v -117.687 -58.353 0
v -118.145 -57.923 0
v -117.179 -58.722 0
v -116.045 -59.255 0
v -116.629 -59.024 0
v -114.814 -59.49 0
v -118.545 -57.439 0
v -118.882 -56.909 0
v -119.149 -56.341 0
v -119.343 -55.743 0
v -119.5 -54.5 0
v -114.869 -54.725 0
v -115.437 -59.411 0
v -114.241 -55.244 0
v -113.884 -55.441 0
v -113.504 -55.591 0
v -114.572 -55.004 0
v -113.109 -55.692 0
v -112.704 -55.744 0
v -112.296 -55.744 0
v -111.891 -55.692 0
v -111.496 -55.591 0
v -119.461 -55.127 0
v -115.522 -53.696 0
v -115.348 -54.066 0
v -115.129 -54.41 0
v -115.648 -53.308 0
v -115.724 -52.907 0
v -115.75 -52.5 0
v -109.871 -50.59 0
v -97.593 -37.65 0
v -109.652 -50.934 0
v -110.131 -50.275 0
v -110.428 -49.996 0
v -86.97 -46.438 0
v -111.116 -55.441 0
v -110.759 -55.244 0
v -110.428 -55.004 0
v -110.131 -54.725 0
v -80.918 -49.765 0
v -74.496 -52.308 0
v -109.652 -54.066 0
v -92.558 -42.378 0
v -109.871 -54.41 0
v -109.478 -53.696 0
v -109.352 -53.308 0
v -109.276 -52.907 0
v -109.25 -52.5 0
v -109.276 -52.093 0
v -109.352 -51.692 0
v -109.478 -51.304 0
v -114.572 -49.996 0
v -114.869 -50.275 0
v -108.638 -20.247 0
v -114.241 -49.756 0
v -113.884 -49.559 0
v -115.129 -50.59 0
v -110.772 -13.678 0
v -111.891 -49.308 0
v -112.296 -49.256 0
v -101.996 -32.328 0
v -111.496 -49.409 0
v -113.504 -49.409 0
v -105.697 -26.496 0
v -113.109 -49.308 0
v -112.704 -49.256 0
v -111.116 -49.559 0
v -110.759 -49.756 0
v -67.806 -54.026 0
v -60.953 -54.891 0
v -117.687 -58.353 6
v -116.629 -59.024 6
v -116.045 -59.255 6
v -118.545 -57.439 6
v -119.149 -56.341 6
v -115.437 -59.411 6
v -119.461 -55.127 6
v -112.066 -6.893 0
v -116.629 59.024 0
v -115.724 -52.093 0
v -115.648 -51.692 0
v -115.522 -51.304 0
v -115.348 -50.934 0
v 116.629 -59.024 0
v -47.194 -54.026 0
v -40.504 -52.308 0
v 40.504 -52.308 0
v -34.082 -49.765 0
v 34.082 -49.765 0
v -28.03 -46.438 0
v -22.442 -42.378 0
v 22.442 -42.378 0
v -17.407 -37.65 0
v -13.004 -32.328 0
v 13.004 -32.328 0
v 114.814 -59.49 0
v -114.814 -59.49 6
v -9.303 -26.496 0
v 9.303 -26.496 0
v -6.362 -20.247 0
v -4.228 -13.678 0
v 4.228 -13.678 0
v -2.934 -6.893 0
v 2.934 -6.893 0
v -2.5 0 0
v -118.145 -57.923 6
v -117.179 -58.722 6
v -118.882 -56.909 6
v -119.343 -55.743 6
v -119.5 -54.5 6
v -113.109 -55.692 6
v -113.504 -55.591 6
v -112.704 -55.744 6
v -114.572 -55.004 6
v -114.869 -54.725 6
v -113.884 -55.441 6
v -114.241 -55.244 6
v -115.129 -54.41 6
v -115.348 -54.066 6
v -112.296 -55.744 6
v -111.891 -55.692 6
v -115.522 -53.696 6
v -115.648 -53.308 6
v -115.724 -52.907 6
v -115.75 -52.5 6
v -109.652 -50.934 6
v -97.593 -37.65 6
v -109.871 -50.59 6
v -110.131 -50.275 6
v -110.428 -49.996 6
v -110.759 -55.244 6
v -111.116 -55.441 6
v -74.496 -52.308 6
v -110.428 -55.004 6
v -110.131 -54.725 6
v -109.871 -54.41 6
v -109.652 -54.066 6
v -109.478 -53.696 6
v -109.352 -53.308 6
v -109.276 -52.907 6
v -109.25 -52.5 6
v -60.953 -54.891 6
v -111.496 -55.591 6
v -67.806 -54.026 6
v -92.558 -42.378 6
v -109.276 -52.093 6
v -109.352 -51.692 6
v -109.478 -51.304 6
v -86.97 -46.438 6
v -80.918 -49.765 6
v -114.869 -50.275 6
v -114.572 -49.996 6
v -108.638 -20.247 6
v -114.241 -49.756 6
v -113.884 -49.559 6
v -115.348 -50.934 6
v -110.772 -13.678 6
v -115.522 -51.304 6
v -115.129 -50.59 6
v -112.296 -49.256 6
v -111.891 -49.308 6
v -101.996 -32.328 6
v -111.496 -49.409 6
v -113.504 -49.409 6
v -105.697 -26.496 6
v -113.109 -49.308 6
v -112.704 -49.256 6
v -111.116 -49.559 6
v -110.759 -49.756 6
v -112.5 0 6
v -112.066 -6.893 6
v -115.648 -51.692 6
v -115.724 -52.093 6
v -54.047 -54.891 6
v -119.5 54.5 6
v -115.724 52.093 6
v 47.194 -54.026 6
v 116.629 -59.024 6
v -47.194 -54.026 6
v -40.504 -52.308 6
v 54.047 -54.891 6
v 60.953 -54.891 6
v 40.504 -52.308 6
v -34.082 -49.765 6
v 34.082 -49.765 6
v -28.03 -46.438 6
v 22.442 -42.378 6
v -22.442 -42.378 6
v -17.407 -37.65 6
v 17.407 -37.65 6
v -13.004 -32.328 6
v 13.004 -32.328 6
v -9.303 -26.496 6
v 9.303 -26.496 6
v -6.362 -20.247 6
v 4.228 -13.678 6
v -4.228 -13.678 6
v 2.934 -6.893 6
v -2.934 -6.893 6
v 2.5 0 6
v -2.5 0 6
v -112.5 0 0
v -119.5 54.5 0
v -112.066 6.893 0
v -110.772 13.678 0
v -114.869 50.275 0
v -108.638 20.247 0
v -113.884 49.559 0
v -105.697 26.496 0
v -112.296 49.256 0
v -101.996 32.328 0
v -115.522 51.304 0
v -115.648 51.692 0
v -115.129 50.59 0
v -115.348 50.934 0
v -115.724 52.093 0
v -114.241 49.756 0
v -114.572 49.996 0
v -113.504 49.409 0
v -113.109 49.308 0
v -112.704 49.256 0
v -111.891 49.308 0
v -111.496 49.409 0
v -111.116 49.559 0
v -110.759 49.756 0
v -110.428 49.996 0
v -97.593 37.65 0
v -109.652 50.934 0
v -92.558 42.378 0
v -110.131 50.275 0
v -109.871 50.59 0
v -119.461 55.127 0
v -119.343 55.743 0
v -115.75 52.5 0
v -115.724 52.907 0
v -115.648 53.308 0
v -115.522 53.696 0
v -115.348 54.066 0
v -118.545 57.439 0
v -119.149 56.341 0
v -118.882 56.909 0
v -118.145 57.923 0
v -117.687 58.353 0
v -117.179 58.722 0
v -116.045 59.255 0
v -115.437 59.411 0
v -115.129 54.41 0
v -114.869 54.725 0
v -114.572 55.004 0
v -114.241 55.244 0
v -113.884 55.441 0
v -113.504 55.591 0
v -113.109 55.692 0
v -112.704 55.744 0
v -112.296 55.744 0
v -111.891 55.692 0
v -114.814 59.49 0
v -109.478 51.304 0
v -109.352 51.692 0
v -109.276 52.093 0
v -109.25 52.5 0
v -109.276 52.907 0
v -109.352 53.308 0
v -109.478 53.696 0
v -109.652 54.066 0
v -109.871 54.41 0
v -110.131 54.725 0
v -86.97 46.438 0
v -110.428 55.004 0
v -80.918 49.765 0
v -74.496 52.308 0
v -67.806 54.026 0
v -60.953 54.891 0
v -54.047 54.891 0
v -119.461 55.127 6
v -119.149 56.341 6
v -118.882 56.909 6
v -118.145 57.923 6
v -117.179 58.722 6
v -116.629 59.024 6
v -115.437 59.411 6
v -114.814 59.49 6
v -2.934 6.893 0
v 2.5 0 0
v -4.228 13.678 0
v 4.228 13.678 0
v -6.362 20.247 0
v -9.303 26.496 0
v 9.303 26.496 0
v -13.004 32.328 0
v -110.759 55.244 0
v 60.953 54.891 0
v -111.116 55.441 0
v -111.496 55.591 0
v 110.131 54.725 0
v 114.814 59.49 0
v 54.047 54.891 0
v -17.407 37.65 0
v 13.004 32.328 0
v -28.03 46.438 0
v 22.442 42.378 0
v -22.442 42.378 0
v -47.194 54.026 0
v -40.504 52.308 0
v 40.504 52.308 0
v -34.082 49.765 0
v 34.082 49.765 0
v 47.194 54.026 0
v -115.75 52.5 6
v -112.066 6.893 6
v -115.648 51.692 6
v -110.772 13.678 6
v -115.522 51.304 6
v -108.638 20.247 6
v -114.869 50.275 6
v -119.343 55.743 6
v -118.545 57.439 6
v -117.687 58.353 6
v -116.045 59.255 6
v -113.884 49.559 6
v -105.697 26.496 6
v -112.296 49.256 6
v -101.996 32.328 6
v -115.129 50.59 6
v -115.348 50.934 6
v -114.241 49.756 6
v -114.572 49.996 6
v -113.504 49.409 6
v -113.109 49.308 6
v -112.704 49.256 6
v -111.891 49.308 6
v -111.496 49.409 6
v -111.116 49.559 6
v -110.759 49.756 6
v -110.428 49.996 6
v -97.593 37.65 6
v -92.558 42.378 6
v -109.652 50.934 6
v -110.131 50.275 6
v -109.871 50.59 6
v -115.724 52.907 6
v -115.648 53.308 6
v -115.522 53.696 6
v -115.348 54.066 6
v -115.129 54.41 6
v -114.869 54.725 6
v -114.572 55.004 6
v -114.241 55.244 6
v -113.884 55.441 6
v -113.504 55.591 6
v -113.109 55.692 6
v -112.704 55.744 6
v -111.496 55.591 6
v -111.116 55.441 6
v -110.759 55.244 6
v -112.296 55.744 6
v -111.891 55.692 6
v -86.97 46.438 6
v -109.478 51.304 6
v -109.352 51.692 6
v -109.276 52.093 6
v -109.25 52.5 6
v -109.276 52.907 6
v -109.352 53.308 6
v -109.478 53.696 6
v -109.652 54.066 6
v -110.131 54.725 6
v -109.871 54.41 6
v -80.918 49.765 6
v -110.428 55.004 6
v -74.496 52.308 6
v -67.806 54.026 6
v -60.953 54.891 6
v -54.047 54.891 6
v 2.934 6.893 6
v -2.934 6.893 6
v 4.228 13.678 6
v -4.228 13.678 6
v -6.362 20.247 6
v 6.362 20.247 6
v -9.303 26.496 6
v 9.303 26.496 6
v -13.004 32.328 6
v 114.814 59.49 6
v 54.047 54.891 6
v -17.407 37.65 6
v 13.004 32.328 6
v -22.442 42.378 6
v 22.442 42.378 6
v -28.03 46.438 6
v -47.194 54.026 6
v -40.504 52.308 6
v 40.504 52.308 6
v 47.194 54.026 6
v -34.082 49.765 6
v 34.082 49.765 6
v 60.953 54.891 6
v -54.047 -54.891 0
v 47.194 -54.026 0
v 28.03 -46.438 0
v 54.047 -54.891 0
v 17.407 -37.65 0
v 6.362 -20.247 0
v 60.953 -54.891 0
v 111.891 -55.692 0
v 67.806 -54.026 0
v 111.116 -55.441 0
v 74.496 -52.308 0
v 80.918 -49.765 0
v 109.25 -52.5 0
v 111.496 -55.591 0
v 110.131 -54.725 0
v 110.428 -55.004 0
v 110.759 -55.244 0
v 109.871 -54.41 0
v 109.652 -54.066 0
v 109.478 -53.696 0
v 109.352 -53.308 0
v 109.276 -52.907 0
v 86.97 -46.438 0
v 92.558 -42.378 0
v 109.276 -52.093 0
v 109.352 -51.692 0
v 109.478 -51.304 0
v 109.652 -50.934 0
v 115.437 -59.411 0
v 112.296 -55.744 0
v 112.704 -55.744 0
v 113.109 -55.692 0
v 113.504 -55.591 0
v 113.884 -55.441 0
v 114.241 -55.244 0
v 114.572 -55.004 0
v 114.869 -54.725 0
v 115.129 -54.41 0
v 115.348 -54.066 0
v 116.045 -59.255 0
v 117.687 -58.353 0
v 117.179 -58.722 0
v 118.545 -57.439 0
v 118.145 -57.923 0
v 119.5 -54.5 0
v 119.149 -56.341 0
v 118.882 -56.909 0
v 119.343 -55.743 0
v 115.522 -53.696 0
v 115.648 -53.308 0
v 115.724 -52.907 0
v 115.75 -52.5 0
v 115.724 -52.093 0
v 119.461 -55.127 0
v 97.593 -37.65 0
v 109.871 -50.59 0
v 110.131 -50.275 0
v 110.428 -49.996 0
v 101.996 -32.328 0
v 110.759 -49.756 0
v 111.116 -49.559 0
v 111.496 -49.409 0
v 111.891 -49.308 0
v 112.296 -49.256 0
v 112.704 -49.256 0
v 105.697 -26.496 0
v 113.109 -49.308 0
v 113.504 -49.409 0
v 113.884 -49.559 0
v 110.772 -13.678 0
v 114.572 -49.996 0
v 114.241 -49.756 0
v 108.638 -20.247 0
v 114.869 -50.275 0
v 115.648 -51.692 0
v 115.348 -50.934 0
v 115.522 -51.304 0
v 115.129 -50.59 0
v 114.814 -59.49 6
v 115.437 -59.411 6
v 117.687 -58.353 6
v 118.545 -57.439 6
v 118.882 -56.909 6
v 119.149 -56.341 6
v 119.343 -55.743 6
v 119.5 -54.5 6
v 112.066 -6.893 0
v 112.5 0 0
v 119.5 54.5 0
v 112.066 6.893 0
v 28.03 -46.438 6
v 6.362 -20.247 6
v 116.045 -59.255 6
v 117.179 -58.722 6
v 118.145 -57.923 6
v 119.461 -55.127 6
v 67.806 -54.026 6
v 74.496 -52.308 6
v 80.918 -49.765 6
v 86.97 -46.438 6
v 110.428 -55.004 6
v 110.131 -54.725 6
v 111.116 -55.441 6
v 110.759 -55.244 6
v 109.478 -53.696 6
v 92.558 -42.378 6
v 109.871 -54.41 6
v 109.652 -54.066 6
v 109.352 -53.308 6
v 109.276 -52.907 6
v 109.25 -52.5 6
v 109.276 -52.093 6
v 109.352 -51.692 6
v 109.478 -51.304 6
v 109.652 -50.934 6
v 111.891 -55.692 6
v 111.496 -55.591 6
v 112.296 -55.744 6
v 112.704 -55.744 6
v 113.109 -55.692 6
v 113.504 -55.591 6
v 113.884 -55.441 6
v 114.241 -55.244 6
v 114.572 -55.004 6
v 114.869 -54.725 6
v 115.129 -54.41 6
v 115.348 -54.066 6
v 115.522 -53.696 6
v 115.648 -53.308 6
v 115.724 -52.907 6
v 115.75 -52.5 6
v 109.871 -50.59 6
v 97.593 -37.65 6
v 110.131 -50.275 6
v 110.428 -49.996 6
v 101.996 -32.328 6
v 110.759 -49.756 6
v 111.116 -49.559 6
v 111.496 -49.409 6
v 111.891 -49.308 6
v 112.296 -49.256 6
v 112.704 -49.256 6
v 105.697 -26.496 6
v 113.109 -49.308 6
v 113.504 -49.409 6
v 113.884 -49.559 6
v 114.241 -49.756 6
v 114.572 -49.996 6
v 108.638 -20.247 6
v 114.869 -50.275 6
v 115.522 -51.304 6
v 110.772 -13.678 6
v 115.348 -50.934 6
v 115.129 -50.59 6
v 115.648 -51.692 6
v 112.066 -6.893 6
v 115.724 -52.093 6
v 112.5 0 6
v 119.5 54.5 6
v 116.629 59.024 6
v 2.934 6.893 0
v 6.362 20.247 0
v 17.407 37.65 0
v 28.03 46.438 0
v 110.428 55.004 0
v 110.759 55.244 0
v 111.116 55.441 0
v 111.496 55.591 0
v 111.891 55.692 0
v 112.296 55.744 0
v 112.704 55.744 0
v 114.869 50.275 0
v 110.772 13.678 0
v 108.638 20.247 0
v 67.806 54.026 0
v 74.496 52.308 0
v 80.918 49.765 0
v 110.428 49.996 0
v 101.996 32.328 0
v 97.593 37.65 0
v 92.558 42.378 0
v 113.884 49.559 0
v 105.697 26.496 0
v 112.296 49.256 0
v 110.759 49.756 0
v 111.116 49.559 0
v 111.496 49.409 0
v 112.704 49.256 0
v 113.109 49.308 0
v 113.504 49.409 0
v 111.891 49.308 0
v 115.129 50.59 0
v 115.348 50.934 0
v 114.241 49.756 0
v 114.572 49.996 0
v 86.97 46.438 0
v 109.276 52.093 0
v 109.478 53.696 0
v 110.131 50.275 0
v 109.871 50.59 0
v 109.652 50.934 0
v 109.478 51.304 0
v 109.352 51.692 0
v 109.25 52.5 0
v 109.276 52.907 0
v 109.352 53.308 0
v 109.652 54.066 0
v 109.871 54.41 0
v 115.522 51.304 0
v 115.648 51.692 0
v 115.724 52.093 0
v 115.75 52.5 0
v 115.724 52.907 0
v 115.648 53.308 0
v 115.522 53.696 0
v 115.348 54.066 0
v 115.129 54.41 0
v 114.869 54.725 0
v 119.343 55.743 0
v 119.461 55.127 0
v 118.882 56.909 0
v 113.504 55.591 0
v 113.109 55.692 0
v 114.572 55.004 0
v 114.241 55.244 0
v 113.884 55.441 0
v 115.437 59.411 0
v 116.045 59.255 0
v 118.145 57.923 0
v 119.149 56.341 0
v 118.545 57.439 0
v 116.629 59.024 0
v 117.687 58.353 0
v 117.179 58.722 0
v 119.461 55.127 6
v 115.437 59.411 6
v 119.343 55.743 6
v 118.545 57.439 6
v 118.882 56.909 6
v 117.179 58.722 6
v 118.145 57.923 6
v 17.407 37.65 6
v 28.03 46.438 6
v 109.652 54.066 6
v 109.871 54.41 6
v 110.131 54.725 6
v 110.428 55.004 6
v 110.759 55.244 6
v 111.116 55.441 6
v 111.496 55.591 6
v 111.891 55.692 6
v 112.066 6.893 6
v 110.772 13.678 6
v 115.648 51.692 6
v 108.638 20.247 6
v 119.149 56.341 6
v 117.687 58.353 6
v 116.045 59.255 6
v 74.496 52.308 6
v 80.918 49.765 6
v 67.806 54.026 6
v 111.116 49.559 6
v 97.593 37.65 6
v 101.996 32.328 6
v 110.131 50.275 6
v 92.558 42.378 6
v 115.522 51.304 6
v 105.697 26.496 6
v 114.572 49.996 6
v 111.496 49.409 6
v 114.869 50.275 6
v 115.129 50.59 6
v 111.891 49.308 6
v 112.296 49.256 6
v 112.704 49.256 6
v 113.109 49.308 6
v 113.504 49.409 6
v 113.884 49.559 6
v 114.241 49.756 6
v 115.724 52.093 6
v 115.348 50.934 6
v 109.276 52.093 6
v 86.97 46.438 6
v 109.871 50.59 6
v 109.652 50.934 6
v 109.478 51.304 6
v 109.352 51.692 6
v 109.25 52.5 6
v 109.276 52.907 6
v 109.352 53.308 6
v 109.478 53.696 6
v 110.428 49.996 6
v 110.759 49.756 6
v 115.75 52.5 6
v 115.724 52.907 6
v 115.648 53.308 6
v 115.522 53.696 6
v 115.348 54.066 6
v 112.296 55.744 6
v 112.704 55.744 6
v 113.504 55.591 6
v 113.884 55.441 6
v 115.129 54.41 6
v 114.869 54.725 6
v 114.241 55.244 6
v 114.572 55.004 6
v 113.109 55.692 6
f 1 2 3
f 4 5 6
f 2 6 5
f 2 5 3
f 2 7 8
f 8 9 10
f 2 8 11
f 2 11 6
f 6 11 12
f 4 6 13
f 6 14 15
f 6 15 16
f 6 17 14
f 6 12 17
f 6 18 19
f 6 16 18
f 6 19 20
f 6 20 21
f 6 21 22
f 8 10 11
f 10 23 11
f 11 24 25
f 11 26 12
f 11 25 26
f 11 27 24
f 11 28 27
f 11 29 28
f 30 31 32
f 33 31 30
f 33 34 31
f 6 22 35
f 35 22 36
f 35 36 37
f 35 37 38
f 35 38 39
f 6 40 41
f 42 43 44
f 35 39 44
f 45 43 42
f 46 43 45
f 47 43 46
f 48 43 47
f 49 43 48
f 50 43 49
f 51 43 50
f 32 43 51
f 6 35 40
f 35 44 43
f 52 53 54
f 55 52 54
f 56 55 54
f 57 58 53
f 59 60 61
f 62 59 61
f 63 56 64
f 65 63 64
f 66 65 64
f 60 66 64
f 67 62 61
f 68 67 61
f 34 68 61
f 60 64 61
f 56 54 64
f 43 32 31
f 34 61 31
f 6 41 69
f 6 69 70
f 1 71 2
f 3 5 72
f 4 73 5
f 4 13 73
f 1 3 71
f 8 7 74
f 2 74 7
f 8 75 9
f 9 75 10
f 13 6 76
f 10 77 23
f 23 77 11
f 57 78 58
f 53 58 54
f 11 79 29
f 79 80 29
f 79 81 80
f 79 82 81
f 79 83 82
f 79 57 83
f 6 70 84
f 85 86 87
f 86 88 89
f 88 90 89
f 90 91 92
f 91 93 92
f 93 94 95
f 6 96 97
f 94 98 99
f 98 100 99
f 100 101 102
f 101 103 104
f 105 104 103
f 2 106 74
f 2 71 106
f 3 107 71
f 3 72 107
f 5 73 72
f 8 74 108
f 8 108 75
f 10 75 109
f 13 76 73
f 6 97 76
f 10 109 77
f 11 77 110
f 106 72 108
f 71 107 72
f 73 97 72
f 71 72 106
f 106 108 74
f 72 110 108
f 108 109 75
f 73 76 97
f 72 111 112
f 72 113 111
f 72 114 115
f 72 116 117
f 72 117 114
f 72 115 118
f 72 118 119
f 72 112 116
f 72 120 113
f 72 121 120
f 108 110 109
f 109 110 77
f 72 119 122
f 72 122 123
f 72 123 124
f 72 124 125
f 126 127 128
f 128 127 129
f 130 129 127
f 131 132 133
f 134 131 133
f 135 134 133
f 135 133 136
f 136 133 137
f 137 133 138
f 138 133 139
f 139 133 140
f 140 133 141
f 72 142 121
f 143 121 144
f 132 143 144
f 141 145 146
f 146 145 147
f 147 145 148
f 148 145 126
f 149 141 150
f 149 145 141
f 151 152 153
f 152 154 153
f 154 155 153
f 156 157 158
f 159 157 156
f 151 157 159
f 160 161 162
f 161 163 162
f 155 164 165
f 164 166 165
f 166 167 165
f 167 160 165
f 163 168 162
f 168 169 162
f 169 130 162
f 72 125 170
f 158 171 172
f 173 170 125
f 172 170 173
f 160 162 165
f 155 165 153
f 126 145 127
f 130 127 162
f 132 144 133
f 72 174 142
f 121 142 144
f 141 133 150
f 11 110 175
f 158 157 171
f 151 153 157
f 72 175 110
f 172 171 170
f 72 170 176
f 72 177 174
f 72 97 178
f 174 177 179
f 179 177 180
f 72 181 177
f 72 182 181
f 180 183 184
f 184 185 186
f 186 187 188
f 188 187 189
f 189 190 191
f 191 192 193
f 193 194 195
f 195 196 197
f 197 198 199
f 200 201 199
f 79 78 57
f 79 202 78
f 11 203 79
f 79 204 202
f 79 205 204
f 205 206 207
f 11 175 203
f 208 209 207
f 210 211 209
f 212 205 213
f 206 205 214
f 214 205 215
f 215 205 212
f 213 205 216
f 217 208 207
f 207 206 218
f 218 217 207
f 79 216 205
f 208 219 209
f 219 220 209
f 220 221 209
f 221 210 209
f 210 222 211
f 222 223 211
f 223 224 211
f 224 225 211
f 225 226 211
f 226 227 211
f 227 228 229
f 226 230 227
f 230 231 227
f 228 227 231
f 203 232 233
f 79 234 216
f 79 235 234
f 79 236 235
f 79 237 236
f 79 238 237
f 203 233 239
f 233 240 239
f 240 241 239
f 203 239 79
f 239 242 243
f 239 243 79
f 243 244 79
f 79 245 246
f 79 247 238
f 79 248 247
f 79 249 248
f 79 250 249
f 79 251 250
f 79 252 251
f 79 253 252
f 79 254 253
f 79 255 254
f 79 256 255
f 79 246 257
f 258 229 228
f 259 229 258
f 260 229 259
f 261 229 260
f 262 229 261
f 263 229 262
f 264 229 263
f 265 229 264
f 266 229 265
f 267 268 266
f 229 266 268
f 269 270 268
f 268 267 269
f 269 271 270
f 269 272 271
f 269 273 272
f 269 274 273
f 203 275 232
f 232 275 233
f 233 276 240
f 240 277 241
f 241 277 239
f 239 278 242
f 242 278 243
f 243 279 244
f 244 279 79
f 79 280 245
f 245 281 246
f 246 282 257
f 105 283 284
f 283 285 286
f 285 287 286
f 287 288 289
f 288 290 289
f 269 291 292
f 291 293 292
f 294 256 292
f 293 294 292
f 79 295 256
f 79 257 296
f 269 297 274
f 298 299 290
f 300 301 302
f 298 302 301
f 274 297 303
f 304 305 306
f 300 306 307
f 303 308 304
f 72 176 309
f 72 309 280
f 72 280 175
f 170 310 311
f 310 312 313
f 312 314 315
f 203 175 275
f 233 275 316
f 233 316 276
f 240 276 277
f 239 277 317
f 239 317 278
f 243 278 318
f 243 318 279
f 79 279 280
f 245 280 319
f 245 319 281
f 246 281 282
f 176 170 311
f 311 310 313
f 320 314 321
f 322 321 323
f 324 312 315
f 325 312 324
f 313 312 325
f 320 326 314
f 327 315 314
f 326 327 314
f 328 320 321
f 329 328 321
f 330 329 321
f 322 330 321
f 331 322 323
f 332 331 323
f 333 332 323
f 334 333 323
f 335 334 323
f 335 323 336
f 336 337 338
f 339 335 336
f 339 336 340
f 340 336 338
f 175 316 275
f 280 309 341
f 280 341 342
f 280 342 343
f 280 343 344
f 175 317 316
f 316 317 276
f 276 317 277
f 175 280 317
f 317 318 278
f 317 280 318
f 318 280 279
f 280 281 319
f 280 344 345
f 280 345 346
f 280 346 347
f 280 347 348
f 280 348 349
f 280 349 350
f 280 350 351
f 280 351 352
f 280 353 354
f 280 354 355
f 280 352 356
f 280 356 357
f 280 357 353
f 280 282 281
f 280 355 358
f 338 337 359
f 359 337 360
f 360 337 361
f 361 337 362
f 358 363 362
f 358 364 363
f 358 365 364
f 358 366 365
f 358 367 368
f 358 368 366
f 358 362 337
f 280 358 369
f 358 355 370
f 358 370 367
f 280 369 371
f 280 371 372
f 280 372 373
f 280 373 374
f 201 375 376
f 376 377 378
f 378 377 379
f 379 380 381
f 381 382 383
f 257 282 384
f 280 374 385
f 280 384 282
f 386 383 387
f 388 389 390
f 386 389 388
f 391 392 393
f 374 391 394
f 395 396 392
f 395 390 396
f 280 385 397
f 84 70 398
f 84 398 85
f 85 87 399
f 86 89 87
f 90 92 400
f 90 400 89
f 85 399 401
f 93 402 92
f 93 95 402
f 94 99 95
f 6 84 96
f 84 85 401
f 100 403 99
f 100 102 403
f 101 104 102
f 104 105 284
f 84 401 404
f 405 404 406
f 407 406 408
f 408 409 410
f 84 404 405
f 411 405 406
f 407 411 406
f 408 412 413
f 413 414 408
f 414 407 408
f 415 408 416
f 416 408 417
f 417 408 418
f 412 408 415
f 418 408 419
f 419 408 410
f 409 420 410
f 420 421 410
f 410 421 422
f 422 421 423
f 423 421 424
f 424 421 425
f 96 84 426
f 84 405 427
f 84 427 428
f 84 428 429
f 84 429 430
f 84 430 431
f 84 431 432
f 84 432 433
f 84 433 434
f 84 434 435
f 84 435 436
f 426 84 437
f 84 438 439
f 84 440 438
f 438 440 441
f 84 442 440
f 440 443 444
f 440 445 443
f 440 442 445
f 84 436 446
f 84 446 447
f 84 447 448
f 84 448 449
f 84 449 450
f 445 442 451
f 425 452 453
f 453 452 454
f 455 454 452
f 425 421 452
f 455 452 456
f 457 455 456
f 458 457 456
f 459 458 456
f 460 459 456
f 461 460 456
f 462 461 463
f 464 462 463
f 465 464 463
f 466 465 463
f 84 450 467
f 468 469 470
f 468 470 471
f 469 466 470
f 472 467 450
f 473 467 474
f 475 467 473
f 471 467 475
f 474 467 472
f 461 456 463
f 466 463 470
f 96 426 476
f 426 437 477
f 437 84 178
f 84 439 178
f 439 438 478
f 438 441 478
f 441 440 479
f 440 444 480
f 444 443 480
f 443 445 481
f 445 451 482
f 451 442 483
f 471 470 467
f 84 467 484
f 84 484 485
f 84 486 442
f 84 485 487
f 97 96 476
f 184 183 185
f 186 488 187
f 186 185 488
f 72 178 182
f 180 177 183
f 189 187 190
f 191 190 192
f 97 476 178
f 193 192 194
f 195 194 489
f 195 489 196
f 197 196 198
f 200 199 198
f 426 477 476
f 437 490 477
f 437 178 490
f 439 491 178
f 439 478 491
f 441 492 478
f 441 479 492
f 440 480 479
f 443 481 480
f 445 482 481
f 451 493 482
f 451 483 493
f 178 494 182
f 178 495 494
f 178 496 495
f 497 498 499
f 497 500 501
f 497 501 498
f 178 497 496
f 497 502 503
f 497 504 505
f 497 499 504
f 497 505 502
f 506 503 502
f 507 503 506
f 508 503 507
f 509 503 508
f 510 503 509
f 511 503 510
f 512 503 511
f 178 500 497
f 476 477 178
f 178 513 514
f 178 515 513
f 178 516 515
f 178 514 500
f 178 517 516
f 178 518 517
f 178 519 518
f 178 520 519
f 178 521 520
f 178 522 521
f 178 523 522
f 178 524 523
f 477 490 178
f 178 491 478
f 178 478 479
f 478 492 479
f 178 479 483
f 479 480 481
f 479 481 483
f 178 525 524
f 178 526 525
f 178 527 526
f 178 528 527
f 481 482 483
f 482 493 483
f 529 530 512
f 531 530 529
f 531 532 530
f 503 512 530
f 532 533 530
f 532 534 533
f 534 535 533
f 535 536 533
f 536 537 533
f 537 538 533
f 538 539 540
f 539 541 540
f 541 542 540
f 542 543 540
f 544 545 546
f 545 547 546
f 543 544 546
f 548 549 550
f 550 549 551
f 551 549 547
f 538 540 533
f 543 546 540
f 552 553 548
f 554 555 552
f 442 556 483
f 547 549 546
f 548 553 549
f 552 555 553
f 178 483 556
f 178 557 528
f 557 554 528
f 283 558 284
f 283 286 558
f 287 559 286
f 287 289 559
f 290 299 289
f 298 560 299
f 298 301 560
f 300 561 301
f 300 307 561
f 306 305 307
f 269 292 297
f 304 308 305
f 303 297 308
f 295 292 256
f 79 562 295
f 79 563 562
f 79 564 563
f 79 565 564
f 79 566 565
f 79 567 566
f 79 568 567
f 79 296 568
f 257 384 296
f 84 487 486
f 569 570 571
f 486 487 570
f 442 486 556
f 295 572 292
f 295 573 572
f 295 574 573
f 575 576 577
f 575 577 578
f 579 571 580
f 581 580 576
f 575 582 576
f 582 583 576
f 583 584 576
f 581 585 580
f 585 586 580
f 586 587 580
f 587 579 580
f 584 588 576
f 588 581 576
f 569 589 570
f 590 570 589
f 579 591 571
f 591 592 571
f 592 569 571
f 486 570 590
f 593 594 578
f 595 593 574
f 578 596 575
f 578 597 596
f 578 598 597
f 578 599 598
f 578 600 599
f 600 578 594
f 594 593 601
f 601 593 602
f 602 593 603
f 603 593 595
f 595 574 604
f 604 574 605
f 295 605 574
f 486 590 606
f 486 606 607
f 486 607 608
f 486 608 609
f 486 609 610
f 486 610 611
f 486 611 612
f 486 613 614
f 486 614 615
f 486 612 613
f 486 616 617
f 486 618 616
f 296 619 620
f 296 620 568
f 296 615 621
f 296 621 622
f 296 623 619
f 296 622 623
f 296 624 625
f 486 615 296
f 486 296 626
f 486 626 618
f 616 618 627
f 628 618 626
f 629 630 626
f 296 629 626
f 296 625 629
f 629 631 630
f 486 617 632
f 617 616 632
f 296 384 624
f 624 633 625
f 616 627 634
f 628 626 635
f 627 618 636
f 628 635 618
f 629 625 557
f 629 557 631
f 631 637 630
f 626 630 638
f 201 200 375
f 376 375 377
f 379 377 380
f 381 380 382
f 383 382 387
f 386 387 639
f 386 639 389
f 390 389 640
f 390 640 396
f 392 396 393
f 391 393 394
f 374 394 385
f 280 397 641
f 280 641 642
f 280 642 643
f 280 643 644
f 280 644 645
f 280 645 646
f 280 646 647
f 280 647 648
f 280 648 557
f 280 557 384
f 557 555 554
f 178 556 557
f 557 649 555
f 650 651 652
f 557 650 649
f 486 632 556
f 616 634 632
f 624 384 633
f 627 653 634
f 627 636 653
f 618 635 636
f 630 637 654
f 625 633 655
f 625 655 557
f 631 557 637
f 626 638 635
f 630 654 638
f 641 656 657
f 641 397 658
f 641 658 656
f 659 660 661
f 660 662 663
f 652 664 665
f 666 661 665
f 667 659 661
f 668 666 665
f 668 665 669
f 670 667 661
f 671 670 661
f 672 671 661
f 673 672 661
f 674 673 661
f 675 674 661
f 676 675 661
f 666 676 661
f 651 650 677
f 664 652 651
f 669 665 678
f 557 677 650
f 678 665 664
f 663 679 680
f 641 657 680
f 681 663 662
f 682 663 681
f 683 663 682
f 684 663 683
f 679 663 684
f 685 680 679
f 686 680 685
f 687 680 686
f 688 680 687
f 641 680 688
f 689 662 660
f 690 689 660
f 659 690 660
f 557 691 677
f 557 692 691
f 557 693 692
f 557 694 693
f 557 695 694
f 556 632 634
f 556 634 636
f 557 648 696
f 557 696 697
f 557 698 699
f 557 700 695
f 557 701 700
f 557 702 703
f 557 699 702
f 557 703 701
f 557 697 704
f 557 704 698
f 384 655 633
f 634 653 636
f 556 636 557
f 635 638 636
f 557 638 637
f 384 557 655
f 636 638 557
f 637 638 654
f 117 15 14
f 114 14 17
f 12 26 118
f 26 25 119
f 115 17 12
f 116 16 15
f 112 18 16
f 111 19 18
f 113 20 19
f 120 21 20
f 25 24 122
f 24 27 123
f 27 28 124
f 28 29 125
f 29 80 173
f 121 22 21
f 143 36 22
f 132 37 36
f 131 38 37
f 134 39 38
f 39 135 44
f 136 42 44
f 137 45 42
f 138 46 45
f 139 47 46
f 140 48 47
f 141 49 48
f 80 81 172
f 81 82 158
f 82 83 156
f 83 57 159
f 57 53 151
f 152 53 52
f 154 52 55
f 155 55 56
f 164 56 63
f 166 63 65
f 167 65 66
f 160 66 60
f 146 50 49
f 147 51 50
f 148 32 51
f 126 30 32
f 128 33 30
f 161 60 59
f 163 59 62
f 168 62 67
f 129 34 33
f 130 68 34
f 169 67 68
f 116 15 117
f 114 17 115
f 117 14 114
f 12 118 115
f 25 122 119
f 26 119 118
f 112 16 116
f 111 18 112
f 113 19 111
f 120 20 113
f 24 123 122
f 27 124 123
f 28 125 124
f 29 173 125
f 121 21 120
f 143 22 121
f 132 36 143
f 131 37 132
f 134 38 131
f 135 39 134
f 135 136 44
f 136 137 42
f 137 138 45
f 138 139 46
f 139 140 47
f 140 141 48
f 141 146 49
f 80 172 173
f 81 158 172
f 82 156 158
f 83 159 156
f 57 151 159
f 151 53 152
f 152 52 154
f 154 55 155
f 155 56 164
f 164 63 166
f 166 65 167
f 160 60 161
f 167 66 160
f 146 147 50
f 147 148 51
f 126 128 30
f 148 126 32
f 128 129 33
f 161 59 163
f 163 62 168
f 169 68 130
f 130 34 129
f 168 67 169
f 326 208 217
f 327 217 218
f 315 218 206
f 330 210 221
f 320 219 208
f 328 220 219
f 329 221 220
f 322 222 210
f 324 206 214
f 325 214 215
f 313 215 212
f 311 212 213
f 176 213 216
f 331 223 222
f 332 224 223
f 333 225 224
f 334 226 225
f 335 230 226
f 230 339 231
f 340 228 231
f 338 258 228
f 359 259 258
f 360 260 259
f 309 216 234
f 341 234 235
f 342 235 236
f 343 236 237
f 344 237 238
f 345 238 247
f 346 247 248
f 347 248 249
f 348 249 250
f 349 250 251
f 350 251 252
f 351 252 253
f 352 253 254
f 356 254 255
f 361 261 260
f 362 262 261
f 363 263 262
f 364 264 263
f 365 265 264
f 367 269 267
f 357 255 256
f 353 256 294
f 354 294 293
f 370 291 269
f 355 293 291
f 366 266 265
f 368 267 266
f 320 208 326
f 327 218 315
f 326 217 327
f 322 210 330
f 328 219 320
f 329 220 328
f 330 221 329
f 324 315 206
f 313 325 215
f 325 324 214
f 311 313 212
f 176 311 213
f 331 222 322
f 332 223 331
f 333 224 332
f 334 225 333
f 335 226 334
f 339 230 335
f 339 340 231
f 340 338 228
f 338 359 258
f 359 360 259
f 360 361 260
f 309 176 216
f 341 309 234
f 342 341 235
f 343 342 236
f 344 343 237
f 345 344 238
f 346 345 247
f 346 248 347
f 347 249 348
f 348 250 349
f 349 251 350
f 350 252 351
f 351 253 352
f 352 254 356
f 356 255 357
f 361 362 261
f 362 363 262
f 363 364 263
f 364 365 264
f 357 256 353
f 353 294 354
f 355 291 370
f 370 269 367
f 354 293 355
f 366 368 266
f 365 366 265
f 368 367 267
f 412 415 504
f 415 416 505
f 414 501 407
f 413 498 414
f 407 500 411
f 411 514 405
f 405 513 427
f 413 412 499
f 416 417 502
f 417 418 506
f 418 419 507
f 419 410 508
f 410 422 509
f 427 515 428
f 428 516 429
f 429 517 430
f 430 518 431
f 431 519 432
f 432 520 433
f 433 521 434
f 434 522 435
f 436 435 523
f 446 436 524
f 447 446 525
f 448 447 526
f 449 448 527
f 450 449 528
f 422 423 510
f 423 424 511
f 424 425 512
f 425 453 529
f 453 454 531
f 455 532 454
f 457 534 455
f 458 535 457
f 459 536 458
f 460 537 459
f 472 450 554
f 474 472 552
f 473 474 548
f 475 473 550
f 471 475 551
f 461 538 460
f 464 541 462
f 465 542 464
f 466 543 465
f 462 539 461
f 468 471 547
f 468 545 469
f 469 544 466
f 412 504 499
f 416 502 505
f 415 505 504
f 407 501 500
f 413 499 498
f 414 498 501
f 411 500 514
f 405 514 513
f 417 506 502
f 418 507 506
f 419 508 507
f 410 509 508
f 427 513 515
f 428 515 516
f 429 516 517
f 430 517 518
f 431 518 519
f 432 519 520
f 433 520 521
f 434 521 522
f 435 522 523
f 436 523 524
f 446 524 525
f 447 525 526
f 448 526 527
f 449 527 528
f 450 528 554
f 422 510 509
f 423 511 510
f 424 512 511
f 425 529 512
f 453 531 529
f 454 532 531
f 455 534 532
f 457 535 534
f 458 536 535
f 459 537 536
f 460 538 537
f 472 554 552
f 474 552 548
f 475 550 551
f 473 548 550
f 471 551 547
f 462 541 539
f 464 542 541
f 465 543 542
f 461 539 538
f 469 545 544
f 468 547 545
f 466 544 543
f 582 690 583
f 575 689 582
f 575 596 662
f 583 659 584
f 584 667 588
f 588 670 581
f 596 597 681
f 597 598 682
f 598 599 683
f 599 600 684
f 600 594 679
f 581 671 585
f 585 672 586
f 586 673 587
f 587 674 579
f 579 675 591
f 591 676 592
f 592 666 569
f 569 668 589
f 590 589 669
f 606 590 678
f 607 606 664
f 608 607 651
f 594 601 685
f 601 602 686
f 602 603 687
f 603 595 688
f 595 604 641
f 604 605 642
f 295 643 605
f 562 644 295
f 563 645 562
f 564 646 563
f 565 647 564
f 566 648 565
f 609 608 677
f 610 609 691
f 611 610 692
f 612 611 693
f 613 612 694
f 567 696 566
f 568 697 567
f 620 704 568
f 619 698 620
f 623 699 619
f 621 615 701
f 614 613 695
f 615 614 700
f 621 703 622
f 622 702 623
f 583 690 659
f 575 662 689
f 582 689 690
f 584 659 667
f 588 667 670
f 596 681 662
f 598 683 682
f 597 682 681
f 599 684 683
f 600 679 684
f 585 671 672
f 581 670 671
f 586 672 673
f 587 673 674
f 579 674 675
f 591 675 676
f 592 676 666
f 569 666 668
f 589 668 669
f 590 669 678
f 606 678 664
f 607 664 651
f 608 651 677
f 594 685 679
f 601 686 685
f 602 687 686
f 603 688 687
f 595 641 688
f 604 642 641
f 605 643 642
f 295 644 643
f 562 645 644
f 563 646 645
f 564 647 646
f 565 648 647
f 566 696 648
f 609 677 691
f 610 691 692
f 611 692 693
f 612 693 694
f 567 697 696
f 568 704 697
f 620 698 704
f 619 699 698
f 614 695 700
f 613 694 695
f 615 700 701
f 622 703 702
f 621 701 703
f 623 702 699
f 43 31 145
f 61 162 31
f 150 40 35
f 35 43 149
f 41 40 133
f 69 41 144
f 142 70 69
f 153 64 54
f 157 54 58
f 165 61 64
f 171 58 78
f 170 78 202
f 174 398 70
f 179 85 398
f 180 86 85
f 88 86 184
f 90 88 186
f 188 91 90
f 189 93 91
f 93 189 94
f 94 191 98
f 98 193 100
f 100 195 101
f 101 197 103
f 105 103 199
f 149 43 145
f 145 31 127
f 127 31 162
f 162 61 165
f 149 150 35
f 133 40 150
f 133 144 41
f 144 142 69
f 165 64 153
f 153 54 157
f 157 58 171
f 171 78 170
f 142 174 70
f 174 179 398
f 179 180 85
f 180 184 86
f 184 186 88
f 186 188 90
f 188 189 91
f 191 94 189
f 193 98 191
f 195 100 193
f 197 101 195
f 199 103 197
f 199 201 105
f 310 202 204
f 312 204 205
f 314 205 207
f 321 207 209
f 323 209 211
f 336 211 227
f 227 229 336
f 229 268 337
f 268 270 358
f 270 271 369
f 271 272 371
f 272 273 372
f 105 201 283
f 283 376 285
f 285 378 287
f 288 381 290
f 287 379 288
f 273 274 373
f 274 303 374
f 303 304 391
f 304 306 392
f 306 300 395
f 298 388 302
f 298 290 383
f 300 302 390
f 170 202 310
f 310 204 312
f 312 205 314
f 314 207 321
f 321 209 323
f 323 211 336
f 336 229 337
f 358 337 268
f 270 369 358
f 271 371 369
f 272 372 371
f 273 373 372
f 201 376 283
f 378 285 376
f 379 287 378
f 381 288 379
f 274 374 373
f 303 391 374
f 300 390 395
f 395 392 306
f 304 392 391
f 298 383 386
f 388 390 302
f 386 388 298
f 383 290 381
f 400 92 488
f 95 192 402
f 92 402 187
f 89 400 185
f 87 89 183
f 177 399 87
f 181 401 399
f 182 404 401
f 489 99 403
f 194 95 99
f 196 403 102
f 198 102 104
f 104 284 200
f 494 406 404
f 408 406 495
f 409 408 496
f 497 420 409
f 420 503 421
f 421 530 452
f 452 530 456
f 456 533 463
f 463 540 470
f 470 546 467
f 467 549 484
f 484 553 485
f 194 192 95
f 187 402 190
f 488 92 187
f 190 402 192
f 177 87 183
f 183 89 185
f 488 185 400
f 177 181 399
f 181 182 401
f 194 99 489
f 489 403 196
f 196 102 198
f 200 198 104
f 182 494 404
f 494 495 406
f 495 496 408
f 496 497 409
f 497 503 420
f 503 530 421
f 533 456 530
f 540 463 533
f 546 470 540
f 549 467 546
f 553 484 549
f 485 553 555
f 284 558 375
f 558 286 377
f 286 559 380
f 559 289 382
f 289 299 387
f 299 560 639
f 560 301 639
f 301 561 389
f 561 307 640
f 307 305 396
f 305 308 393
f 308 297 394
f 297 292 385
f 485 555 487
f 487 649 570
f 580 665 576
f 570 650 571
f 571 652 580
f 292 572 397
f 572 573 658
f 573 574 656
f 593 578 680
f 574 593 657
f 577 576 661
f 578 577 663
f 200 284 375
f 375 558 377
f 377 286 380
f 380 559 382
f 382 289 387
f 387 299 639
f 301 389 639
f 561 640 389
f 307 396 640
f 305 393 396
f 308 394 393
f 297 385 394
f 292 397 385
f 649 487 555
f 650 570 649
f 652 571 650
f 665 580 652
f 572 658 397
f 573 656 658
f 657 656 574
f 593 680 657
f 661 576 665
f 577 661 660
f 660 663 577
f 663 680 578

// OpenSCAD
$fn = 50;

difference() {
	union() {
		hull() {
			translate(v = [-114.5, 54.5, 0]) {
				cylinder(h = 6, r = 5);
			}
			translate(v = [114.5, 54.5, 0]) {
				cylinder(h = 6, r = 5);
			}
			translate(v = [-114.5, -54.5, 0]) {
				cylinder(h = 6, r = 5);
			}
			translate(v = [114.5, -54.5, 0]) {
				cylinder(h = 6, r = 5);
			}
		}
	}
	union() {
		translate(v = [-112.5, -52.5, -100.0]) {
			cylinder(h = 200, r = 3.25);
		}
		translate(v = [-112.5, 52.5, -100.0]) {
			cylinder(h = 200, r = 3.25);
		}
		translate(v = [112.5, -52.5, -100.0]) {
			cylinder(h = 200, r = 3.25);
		}
		translate(v = [112.5, 52.5, -100.0]) {
			cylinder(h = 200, r = 3.25);
		}
		translate(v = [-112.5, -52.5, -100.0]) {
			cylinder(h = 200, r = 1.8);
		}
		translate(v = [-112.5, 52.5, -100.0]) {
			cylinder(h = 200, r = 1.8);
		}
		translate(v = [112.5, -52.5, -100.0]) {
			cylinder(h = 200, r = 1.8);
		}
		translate(v = [112.5, 52.5, -100.0]) {
			cylinder(h = 200, r = 1.8);
		}
		translate(v = [-57.5, 0, 0.0]) {
			cylinder(h = 6, r = 55.0);
		}
		translate(v = [57.5, 0, 0.0]) {
			cylinder(h = 6, r = 55.0);
		}
	}
}
